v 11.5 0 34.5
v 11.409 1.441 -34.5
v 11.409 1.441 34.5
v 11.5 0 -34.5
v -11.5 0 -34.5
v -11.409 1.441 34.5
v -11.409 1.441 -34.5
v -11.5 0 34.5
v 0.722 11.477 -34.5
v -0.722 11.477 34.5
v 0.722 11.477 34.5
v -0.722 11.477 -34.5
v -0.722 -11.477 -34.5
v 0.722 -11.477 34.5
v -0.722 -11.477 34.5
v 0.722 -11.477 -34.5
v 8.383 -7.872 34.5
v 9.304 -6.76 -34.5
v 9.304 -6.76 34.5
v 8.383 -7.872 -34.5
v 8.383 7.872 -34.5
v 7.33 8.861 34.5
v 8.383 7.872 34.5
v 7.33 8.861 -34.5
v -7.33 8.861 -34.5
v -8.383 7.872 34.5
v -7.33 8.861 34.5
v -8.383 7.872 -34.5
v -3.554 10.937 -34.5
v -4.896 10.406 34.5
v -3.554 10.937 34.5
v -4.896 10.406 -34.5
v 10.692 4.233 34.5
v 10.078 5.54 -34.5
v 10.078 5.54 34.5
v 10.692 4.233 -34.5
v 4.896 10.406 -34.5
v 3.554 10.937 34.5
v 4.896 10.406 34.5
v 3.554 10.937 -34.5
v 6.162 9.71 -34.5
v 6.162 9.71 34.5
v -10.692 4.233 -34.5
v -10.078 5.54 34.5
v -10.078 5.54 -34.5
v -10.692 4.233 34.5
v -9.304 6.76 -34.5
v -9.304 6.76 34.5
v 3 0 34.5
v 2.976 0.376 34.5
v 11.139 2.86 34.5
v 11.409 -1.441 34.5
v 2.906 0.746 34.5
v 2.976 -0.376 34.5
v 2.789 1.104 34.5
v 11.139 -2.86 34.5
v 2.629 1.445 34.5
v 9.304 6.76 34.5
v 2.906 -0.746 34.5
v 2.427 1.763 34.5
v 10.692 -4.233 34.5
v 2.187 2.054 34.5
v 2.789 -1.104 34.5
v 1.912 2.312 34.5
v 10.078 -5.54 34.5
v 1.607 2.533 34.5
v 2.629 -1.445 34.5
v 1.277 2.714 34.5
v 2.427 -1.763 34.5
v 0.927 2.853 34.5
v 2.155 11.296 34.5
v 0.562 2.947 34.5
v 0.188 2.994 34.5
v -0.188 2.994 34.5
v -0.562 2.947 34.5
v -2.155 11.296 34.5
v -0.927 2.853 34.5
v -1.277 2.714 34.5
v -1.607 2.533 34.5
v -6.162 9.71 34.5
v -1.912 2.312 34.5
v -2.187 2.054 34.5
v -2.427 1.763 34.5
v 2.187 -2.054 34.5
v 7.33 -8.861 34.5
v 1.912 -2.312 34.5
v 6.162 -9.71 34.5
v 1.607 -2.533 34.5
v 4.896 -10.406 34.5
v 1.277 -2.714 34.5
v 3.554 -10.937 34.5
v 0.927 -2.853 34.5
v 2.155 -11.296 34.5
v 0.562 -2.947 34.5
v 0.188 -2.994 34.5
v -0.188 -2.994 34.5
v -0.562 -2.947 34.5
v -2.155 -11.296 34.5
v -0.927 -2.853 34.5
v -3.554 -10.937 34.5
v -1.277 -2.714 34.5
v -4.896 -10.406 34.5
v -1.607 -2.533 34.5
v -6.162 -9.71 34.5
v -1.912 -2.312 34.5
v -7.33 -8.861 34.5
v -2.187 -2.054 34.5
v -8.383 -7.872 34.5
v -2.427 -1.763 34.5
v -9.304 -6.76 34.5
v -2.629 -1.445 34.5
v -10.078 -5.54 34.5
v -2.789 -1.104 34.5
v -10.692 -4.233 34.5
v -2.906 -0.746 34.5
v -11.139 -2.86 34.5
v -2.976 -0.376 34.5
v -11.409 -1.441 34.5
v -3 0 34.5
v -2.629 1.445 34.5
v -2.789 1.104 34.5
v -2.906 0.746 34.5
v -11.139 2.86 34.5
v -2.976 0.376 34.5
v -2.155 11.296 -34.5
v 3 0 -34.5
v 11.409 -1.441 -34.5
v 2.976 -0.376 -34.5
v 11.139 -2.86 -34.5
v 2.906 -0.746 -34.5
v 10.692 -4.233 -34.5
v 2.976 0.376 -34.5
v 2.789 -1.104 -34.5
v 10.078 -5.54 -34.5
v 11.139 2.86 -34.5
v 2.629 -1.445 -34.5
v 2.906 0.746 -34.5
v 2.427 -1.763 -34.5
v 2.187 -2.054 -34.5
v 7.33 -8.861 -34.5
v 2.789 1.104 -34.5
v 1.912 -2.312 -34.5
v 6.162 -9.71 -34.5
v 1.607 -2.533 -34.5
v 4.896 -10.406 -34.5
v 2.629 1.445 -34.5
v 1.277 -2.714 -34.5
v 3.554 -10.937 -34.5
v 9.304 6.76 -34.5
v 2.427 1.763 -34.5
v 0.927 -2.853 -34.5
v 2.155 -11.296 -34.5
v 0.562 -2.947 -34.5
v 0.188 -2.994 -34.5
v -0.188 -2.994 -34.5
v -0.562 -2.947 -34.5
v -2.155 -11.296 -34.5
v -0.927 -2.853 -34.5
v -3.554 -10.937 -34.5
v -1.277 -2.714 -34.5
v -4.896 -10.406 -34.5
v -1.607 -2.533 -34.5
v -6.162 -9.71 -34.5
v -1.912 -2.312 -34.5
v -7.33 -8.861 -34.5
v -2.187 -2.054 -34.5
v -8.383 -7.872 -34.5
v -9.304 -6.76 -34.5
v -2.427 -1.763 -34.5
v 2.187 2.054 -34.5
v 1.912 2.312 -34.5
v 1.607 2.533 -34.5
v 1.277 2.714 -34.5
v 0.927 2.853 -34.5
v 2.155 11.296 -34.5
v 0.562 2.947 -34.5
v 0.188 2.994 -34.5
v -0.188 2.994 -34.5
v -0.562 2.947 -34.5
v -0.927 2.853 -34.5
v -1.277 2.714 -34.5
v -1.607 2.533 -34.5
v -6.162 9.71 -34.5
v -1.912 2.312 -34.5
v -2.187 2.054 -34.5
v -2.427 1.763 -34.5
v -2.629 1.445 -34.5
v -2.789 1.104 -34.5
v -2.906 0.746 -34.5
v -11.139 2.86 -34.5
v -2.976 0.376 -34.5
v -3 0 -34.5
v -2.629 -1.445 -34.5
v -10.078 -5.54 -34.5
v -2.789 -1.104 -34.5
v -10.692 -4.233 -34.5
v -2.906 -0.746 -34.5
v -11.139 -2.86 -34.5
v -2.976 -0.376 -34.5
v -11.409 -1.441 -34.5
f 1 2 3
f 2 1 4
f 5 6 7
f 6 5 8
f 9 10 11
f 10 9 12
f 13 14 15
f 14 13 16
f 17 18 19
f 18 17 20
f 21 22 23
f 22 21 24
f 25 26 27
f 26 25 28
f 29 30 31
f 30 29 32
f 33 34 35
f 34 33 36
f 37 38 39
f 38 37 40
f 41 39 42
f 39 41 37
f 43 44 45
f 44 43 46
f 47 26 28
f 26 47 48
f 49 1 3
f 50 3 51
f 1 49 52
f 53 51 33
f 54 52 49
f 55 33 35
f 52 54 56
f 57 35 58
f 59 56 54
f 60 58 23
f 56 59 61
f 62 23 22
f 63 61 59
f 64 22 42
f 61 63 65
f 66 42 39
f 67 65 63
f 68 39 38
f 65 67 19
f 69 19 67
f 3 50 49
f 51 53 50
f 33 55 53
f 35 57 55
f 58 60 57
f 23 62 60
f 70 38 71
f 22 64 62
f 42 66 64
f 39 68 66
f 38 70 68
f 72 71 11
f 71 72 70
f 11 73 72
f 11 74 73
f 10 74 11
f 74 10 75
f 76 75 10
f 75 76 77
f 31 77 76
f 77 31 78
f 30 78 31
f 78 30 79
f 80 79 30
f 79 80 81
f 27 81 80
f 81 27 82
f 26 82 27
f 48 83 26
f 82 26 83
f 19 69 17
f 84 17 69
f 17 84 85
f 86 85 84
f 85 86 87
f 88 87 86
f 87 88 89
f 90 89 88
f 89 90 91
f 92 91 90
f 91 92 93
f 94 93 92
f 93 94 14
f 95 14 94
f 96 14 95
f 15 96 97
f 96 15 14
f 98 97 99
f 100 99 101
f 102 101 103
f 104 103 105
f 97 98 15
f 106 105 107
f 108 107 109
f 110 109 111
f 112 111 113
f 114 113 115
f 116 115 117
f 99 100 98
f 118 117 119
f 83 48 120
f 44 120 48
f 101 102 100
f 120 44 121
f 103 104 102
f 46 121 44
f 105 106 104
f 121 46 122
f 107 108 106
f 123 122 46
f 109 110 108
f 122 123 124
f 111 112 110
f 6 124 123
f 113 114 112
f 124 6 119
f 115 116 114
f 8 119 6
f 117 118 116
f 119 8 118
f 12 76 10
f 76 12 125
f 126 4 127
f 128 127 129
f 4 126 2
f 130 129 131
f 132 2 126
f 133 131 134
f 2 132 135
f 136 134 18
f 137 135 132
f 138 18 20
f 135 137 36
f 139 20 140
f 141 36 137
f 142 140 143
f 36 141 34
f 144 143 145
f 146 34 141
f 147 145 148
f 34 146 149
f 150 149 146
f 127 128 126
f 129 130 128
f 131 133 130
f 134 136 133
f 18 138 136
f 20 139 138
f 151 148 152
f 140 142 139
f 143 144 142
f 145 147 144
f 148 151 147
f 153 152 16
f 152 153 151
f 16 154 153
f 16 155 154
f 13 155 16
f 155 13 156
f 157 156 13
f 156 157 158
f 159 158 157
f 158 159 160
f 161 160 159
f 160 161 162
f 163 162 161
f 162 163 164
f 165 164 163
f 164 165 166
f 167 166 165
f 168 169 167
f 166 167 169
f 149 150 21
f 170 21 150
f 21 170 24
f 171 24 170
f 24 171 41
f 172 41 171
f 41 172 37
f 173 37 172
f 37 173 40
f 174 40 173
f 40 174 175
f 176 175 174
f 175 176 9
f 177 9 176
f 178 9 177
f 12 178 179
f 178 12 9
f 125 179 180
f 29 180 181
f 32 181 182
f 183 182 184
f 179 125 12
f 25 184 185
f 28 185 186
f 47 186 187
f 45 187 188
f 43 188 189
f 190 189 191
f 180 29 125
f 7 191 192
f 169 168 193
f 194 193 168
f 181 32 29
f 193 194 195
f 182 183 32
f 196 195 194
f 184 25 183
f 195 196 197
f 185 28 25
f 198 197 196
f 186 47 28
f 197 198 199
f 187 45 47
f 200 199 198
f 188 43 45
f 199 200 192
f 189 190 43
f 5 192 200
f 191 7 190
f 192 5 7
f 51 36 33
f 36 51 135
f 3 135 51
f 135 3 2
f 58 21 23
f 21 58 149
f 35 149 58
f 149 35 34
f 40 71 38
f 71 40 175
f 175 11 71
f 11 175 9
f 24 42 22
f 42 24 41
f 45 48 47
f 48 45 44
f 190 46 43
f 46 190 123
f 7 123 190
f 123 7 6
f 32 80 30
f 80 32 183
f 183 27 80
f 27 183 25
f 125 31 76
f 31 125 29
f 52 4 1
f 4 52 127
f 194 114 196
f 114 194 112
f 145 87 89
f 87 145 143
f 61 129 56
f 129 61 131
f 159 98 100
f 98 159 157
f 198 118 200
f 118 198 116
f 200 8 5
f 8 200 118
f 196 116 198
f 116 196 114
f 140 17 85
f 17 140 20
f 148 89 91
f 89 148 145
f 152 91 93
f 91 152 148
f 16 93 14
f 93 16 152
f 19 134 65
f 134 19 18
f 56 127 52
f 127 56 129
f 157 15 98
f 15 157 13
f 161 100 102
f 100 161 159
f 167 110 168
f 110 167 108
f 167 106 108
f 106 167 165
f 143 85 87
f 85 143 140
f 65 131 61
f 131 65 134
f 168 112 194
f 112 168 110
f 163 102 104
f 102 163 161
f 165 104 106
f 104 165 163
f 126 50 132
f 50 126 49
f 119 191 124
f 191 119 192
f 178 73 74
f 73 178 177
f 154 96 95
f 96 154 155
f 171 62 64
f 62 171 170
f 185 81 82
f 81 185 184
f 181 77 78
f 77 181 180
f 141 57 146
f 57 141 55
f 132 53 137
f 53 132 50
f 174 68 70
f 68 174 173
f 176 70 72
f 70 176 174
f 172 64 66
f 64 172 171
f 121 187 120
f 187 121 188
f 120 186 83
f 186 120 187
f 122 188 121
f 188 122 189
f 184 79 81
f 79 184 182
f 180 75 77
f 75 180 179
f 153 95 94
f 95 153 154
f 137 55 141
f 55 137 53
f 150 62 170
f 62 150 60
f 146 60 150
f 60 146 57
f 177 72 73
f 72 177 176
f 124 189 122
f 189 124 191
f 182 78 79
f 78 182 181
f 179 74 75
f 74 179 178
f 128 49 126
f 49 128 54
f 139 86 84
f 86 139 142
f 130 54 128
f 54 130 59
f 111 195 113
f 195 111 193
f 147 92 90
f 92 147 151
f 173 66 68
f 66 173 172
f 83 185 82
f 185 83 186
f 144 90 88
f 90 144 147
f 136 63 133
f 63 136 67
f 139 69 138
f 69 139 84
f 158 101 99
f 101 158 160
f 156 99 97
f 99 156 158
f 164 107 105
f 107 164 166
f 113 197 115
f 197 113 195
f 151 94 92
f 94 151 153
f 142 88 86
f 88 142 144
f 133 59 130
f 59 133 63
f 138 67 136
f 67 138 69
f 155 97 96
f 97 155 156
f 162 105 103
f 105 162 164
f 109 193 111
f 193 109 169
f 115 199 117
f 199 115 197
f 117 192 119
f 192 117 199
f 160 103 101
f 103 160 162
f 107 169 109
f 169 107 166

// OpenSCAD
$fn = 50;


difference() {
	union() {
		translate(v = [0, 0, -34.5000000000]) {
			cylinder(h = 69, r = 11.5000000000);
		}
	}
	union() {
		translate(v = [0, 0, -100.0000000000]) {
			cylinder(h = 200, r = 3);
		}
	}
}
